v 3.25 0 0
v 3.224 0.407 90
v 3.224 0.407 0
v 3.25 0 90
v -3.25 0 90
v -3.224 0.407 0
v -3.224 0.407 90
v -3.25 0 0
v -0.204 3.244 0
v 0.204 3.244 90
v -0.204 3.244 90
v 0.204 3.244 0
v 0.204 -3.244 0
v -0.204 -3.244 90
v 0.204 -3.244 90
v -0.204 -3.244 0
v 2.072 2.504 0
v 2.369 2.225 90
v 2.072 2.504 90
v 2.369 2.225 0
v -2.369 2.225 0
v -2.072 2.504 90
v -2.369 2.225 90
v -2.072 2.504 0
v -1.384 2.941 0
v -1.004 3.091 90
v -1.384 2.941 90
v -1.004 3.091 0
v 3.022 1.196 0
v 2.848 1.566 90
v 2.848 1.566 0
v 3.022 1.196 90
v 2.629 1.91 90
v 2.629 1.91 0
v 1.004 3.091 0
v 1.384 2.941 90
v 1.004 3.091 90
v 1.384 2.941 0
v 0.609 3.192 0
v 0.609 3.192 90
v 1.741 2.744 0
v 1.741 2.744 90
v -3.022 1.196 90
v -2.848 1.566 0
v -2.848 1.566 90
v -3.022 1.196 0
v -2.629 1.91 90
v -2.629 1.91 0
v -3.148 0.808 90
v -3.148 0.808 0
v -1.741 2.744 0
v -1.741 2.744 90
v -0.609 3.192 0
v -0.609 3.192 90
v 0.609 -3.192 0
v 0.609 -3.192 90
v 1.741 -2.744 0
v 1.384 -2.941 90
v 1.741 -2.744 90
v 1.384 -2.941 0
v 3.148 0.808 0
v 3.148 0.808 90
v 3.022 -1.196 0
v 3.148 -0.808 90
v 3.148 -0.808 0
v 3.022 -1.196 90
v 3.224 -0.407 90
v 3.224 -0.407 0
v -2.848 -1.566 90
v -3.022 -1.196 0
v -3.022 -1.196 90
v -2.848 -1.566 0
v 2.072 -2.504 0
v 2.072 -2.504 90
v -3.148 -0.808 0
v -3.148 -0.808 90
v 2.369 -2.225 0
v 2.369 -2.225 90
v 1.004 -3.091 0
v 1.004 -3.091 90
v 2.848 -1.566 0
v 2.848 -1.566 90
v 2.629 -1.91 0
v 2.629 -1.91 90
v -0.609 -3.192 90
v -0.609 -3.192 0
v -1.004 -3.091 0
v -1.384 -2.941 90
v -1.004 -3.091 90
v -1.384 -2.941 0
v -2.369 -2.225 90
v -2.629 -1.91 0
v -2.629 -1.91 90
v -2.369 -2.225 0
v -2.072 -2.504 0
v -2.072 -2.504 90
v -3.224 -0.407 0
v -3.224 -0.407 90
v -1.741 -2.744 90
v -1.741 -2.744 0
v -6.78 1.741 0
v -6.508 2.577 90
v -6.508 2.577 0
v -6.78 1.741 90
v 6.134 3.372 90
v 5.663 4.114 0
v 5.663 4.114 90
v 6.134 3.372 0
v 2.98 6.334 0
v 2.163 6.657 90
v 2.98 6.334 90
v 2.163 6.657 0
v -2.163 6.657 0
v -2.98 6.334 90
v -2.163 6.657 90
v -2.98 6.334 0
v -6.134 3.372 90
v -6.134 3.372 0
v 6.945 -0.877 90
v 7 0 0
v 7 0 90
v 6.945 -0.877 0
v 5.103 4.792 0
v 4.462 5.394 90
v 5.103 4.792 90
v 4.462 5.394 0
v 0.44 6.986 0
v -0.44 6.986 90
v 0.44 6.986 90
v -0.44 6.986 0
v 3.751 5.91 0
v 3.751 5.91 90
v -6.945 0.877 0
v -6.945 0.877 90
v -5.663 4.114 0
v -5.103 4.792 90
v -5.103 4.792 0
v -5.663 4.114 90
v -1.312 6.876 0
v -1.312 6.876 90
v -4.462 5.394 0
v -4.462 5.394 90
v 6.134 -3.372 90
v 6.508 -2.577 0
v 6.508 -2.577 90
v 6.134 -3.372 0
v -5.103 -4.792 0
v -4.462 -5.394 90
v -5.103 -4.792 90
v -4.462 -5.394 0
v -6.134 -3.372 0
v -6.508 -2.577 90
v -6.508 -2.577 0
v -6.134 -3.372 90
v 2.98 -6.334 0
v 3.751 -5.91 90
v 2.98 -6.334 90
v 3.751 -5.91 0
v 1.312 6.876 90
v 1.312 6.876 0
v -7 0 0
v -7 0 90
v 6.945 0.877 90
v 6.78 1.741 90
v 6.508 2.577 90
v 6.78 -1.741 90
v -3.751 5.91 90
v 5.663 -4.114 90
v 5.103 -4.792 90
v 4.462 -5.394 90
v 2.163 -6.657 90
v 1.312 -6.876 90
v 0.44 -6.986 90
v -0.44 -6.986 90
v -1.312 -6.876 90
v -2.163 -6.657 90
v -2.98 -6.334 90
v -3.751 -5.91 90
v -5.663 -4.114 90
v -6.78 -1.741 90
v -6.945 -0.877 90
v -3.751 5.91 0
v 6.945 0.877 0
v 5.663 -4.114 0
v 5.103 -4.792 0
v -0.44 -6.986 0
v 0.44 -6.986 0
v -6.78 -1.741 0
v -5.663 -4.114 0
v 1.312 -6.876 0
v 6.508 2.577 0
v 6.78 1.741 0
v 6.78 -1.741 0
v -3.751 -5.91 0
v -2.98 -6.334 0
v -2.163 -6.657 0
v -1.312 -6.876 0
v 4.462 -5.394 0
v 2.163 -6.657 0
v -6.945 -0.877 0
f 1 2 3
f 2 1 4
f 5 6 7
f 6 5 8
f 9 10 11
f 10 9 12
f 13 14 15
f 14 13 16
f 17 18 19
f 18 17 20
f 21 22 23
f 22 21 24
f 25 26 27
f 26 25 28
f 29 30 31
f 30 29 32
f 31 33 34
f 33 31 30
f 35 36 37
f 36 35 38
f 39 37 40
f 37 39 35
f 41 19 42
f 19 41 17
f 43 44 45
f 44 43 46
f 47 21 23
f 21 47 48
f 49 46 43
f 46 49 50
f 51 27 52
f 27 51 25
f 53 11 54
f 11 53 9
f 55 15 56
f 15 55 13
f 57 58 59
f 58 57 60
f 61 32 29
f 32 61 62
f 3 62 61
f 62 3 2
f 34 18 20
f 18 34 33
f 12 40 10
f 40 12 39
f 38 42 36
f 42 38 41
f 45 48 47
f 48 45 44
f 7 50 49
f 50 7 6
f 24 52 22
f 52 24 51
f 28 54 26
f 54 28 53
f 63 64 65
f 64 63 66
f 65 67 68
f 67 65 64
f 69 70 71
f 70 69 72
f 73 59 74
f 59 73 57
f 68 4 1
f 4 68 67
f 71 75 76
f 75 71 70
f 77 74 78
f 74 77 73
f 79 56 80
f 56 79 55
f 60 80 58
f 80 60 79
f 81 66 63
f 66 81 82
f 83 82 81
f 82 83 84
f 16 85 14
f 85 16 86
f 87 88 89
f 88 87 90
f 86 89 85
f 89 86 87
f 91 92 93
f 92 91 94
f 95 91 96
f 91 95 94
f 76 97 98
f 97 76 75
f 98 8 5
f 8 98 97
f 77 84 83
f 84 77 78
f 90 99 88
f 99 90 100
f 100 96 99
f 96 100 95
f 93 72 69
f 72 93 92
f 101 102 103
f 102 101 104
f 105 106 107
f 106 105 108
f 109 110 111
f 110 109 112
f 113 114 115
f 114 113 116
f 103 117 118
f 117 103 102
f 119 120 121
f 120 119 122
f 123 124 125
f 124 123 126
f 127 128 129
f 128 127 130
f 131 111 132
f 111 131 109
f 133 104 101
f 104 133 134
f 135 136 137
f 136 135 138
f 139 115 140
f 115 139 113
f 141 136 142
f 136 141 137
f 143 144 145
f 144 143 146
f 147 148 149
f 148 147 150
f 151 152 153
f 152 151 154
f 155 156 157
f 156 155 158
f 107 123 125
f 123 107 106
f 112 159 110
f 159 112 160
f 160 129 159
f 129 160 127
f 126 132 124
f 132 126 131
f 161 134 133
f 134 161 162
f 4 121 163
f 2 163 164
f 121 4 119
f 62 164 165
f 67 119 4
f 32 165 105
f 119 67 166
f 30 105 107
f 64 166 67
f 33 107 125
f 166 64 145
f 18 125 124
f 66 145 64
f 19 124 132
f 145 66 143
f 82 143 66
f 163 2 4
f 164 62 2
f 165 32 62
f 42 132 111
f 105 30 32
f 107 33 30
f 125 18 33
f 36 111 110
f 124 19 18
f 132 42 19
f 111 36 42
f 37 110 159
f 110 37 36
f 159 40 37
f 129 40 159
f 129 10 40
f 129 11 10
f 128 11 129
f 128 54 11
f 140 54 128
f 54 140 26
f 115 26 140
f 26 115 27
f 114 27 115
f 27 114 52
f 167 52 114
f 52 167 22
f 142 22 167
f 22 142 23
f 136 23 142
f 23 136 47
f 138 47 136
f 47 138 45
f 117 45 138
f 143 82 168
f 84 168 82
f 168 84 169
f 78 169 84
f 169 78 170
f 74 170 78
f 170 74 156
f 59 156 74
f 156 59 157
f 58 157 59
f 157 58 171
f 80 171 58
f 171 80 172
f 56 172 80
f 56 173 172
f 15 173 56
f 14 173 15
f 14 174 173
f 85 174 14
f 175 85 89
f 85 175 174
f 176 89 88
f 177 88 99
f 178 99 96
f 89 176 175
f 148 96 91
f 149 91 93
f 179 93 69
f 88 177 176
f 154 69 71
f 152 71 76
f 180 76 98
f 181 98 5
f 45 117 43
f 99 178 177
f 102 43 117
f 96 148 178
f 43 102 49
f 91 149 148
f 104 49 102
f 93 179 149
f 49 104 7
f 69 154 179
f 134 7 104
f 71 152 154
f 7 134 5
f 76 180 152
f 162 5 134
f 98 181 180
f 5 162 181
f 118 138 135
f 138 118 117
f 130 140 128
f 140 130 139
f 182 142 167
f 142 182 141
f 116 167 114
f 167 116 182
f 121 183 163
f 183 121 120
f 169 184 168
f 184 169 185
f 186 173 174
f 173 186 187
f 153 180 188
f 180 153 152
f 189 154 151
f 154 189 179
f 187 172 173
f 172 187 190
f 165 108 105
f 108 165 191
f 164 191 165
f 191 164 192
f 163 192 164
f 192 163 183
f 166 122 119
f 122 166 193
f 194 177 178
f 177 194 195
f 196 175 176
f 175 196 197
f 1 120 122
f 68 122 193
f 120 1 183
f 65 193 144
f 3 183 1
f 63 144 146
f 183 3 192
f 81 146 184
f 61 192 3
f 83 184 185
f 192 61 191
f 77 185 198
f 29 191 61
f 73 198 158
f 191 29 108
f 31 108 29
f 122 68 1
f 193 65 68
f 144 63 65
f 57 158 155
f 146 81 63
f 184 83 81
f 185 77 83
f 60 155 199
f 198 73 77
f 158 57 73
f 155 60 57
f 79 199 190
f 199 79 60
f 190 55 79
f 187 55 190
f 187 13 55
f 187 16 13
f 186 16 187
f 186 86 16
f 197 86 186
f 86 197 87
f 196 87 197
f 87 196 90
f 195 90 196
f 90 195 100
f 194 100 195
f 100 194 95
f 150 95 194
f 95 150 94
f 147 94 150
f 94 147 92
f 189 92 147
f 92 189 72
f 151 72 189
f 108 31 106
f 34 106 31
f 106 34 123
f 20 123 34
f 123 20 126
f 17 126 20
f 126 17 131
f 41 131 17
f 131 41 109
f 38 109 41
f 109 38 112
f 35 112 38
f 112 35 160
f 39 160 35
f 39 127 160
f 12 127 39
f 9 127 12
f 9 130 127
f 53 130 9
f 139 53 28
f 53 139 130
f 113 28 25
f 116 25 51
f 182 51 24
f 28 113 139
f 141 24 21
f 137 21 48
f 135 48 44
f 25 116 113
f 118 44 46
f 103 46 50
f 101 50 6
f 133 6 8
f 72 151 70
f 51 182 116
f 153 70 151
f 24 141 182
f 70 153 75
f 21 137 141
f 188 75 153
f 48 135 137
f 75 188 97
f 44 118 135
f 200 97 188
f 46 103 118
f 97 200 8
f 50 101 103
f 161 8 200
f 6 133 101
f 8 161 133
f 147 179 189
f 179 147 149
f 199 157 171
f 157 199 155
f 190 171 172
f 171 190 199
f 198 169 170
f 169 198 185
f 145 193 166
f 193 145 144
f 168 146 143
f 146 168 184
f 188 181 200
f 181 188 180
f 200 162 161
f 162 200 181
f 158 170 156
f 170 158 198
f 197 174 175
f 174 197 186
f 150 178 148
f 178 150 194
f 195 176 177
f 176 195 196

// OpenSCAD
$fn = 50;


difference() {
	union() {
		cylinder(h = 90, r = 7.0000000000);
	}
	union() {
		translate(v = [0, 0, -100]) {
			cylinder(h = 200, r = 3.2500000000);
		}
		translate(v = [0, 0, -100]) {
			cylinder(h = 200, r = 1.8000000000);
		}
	}
}
